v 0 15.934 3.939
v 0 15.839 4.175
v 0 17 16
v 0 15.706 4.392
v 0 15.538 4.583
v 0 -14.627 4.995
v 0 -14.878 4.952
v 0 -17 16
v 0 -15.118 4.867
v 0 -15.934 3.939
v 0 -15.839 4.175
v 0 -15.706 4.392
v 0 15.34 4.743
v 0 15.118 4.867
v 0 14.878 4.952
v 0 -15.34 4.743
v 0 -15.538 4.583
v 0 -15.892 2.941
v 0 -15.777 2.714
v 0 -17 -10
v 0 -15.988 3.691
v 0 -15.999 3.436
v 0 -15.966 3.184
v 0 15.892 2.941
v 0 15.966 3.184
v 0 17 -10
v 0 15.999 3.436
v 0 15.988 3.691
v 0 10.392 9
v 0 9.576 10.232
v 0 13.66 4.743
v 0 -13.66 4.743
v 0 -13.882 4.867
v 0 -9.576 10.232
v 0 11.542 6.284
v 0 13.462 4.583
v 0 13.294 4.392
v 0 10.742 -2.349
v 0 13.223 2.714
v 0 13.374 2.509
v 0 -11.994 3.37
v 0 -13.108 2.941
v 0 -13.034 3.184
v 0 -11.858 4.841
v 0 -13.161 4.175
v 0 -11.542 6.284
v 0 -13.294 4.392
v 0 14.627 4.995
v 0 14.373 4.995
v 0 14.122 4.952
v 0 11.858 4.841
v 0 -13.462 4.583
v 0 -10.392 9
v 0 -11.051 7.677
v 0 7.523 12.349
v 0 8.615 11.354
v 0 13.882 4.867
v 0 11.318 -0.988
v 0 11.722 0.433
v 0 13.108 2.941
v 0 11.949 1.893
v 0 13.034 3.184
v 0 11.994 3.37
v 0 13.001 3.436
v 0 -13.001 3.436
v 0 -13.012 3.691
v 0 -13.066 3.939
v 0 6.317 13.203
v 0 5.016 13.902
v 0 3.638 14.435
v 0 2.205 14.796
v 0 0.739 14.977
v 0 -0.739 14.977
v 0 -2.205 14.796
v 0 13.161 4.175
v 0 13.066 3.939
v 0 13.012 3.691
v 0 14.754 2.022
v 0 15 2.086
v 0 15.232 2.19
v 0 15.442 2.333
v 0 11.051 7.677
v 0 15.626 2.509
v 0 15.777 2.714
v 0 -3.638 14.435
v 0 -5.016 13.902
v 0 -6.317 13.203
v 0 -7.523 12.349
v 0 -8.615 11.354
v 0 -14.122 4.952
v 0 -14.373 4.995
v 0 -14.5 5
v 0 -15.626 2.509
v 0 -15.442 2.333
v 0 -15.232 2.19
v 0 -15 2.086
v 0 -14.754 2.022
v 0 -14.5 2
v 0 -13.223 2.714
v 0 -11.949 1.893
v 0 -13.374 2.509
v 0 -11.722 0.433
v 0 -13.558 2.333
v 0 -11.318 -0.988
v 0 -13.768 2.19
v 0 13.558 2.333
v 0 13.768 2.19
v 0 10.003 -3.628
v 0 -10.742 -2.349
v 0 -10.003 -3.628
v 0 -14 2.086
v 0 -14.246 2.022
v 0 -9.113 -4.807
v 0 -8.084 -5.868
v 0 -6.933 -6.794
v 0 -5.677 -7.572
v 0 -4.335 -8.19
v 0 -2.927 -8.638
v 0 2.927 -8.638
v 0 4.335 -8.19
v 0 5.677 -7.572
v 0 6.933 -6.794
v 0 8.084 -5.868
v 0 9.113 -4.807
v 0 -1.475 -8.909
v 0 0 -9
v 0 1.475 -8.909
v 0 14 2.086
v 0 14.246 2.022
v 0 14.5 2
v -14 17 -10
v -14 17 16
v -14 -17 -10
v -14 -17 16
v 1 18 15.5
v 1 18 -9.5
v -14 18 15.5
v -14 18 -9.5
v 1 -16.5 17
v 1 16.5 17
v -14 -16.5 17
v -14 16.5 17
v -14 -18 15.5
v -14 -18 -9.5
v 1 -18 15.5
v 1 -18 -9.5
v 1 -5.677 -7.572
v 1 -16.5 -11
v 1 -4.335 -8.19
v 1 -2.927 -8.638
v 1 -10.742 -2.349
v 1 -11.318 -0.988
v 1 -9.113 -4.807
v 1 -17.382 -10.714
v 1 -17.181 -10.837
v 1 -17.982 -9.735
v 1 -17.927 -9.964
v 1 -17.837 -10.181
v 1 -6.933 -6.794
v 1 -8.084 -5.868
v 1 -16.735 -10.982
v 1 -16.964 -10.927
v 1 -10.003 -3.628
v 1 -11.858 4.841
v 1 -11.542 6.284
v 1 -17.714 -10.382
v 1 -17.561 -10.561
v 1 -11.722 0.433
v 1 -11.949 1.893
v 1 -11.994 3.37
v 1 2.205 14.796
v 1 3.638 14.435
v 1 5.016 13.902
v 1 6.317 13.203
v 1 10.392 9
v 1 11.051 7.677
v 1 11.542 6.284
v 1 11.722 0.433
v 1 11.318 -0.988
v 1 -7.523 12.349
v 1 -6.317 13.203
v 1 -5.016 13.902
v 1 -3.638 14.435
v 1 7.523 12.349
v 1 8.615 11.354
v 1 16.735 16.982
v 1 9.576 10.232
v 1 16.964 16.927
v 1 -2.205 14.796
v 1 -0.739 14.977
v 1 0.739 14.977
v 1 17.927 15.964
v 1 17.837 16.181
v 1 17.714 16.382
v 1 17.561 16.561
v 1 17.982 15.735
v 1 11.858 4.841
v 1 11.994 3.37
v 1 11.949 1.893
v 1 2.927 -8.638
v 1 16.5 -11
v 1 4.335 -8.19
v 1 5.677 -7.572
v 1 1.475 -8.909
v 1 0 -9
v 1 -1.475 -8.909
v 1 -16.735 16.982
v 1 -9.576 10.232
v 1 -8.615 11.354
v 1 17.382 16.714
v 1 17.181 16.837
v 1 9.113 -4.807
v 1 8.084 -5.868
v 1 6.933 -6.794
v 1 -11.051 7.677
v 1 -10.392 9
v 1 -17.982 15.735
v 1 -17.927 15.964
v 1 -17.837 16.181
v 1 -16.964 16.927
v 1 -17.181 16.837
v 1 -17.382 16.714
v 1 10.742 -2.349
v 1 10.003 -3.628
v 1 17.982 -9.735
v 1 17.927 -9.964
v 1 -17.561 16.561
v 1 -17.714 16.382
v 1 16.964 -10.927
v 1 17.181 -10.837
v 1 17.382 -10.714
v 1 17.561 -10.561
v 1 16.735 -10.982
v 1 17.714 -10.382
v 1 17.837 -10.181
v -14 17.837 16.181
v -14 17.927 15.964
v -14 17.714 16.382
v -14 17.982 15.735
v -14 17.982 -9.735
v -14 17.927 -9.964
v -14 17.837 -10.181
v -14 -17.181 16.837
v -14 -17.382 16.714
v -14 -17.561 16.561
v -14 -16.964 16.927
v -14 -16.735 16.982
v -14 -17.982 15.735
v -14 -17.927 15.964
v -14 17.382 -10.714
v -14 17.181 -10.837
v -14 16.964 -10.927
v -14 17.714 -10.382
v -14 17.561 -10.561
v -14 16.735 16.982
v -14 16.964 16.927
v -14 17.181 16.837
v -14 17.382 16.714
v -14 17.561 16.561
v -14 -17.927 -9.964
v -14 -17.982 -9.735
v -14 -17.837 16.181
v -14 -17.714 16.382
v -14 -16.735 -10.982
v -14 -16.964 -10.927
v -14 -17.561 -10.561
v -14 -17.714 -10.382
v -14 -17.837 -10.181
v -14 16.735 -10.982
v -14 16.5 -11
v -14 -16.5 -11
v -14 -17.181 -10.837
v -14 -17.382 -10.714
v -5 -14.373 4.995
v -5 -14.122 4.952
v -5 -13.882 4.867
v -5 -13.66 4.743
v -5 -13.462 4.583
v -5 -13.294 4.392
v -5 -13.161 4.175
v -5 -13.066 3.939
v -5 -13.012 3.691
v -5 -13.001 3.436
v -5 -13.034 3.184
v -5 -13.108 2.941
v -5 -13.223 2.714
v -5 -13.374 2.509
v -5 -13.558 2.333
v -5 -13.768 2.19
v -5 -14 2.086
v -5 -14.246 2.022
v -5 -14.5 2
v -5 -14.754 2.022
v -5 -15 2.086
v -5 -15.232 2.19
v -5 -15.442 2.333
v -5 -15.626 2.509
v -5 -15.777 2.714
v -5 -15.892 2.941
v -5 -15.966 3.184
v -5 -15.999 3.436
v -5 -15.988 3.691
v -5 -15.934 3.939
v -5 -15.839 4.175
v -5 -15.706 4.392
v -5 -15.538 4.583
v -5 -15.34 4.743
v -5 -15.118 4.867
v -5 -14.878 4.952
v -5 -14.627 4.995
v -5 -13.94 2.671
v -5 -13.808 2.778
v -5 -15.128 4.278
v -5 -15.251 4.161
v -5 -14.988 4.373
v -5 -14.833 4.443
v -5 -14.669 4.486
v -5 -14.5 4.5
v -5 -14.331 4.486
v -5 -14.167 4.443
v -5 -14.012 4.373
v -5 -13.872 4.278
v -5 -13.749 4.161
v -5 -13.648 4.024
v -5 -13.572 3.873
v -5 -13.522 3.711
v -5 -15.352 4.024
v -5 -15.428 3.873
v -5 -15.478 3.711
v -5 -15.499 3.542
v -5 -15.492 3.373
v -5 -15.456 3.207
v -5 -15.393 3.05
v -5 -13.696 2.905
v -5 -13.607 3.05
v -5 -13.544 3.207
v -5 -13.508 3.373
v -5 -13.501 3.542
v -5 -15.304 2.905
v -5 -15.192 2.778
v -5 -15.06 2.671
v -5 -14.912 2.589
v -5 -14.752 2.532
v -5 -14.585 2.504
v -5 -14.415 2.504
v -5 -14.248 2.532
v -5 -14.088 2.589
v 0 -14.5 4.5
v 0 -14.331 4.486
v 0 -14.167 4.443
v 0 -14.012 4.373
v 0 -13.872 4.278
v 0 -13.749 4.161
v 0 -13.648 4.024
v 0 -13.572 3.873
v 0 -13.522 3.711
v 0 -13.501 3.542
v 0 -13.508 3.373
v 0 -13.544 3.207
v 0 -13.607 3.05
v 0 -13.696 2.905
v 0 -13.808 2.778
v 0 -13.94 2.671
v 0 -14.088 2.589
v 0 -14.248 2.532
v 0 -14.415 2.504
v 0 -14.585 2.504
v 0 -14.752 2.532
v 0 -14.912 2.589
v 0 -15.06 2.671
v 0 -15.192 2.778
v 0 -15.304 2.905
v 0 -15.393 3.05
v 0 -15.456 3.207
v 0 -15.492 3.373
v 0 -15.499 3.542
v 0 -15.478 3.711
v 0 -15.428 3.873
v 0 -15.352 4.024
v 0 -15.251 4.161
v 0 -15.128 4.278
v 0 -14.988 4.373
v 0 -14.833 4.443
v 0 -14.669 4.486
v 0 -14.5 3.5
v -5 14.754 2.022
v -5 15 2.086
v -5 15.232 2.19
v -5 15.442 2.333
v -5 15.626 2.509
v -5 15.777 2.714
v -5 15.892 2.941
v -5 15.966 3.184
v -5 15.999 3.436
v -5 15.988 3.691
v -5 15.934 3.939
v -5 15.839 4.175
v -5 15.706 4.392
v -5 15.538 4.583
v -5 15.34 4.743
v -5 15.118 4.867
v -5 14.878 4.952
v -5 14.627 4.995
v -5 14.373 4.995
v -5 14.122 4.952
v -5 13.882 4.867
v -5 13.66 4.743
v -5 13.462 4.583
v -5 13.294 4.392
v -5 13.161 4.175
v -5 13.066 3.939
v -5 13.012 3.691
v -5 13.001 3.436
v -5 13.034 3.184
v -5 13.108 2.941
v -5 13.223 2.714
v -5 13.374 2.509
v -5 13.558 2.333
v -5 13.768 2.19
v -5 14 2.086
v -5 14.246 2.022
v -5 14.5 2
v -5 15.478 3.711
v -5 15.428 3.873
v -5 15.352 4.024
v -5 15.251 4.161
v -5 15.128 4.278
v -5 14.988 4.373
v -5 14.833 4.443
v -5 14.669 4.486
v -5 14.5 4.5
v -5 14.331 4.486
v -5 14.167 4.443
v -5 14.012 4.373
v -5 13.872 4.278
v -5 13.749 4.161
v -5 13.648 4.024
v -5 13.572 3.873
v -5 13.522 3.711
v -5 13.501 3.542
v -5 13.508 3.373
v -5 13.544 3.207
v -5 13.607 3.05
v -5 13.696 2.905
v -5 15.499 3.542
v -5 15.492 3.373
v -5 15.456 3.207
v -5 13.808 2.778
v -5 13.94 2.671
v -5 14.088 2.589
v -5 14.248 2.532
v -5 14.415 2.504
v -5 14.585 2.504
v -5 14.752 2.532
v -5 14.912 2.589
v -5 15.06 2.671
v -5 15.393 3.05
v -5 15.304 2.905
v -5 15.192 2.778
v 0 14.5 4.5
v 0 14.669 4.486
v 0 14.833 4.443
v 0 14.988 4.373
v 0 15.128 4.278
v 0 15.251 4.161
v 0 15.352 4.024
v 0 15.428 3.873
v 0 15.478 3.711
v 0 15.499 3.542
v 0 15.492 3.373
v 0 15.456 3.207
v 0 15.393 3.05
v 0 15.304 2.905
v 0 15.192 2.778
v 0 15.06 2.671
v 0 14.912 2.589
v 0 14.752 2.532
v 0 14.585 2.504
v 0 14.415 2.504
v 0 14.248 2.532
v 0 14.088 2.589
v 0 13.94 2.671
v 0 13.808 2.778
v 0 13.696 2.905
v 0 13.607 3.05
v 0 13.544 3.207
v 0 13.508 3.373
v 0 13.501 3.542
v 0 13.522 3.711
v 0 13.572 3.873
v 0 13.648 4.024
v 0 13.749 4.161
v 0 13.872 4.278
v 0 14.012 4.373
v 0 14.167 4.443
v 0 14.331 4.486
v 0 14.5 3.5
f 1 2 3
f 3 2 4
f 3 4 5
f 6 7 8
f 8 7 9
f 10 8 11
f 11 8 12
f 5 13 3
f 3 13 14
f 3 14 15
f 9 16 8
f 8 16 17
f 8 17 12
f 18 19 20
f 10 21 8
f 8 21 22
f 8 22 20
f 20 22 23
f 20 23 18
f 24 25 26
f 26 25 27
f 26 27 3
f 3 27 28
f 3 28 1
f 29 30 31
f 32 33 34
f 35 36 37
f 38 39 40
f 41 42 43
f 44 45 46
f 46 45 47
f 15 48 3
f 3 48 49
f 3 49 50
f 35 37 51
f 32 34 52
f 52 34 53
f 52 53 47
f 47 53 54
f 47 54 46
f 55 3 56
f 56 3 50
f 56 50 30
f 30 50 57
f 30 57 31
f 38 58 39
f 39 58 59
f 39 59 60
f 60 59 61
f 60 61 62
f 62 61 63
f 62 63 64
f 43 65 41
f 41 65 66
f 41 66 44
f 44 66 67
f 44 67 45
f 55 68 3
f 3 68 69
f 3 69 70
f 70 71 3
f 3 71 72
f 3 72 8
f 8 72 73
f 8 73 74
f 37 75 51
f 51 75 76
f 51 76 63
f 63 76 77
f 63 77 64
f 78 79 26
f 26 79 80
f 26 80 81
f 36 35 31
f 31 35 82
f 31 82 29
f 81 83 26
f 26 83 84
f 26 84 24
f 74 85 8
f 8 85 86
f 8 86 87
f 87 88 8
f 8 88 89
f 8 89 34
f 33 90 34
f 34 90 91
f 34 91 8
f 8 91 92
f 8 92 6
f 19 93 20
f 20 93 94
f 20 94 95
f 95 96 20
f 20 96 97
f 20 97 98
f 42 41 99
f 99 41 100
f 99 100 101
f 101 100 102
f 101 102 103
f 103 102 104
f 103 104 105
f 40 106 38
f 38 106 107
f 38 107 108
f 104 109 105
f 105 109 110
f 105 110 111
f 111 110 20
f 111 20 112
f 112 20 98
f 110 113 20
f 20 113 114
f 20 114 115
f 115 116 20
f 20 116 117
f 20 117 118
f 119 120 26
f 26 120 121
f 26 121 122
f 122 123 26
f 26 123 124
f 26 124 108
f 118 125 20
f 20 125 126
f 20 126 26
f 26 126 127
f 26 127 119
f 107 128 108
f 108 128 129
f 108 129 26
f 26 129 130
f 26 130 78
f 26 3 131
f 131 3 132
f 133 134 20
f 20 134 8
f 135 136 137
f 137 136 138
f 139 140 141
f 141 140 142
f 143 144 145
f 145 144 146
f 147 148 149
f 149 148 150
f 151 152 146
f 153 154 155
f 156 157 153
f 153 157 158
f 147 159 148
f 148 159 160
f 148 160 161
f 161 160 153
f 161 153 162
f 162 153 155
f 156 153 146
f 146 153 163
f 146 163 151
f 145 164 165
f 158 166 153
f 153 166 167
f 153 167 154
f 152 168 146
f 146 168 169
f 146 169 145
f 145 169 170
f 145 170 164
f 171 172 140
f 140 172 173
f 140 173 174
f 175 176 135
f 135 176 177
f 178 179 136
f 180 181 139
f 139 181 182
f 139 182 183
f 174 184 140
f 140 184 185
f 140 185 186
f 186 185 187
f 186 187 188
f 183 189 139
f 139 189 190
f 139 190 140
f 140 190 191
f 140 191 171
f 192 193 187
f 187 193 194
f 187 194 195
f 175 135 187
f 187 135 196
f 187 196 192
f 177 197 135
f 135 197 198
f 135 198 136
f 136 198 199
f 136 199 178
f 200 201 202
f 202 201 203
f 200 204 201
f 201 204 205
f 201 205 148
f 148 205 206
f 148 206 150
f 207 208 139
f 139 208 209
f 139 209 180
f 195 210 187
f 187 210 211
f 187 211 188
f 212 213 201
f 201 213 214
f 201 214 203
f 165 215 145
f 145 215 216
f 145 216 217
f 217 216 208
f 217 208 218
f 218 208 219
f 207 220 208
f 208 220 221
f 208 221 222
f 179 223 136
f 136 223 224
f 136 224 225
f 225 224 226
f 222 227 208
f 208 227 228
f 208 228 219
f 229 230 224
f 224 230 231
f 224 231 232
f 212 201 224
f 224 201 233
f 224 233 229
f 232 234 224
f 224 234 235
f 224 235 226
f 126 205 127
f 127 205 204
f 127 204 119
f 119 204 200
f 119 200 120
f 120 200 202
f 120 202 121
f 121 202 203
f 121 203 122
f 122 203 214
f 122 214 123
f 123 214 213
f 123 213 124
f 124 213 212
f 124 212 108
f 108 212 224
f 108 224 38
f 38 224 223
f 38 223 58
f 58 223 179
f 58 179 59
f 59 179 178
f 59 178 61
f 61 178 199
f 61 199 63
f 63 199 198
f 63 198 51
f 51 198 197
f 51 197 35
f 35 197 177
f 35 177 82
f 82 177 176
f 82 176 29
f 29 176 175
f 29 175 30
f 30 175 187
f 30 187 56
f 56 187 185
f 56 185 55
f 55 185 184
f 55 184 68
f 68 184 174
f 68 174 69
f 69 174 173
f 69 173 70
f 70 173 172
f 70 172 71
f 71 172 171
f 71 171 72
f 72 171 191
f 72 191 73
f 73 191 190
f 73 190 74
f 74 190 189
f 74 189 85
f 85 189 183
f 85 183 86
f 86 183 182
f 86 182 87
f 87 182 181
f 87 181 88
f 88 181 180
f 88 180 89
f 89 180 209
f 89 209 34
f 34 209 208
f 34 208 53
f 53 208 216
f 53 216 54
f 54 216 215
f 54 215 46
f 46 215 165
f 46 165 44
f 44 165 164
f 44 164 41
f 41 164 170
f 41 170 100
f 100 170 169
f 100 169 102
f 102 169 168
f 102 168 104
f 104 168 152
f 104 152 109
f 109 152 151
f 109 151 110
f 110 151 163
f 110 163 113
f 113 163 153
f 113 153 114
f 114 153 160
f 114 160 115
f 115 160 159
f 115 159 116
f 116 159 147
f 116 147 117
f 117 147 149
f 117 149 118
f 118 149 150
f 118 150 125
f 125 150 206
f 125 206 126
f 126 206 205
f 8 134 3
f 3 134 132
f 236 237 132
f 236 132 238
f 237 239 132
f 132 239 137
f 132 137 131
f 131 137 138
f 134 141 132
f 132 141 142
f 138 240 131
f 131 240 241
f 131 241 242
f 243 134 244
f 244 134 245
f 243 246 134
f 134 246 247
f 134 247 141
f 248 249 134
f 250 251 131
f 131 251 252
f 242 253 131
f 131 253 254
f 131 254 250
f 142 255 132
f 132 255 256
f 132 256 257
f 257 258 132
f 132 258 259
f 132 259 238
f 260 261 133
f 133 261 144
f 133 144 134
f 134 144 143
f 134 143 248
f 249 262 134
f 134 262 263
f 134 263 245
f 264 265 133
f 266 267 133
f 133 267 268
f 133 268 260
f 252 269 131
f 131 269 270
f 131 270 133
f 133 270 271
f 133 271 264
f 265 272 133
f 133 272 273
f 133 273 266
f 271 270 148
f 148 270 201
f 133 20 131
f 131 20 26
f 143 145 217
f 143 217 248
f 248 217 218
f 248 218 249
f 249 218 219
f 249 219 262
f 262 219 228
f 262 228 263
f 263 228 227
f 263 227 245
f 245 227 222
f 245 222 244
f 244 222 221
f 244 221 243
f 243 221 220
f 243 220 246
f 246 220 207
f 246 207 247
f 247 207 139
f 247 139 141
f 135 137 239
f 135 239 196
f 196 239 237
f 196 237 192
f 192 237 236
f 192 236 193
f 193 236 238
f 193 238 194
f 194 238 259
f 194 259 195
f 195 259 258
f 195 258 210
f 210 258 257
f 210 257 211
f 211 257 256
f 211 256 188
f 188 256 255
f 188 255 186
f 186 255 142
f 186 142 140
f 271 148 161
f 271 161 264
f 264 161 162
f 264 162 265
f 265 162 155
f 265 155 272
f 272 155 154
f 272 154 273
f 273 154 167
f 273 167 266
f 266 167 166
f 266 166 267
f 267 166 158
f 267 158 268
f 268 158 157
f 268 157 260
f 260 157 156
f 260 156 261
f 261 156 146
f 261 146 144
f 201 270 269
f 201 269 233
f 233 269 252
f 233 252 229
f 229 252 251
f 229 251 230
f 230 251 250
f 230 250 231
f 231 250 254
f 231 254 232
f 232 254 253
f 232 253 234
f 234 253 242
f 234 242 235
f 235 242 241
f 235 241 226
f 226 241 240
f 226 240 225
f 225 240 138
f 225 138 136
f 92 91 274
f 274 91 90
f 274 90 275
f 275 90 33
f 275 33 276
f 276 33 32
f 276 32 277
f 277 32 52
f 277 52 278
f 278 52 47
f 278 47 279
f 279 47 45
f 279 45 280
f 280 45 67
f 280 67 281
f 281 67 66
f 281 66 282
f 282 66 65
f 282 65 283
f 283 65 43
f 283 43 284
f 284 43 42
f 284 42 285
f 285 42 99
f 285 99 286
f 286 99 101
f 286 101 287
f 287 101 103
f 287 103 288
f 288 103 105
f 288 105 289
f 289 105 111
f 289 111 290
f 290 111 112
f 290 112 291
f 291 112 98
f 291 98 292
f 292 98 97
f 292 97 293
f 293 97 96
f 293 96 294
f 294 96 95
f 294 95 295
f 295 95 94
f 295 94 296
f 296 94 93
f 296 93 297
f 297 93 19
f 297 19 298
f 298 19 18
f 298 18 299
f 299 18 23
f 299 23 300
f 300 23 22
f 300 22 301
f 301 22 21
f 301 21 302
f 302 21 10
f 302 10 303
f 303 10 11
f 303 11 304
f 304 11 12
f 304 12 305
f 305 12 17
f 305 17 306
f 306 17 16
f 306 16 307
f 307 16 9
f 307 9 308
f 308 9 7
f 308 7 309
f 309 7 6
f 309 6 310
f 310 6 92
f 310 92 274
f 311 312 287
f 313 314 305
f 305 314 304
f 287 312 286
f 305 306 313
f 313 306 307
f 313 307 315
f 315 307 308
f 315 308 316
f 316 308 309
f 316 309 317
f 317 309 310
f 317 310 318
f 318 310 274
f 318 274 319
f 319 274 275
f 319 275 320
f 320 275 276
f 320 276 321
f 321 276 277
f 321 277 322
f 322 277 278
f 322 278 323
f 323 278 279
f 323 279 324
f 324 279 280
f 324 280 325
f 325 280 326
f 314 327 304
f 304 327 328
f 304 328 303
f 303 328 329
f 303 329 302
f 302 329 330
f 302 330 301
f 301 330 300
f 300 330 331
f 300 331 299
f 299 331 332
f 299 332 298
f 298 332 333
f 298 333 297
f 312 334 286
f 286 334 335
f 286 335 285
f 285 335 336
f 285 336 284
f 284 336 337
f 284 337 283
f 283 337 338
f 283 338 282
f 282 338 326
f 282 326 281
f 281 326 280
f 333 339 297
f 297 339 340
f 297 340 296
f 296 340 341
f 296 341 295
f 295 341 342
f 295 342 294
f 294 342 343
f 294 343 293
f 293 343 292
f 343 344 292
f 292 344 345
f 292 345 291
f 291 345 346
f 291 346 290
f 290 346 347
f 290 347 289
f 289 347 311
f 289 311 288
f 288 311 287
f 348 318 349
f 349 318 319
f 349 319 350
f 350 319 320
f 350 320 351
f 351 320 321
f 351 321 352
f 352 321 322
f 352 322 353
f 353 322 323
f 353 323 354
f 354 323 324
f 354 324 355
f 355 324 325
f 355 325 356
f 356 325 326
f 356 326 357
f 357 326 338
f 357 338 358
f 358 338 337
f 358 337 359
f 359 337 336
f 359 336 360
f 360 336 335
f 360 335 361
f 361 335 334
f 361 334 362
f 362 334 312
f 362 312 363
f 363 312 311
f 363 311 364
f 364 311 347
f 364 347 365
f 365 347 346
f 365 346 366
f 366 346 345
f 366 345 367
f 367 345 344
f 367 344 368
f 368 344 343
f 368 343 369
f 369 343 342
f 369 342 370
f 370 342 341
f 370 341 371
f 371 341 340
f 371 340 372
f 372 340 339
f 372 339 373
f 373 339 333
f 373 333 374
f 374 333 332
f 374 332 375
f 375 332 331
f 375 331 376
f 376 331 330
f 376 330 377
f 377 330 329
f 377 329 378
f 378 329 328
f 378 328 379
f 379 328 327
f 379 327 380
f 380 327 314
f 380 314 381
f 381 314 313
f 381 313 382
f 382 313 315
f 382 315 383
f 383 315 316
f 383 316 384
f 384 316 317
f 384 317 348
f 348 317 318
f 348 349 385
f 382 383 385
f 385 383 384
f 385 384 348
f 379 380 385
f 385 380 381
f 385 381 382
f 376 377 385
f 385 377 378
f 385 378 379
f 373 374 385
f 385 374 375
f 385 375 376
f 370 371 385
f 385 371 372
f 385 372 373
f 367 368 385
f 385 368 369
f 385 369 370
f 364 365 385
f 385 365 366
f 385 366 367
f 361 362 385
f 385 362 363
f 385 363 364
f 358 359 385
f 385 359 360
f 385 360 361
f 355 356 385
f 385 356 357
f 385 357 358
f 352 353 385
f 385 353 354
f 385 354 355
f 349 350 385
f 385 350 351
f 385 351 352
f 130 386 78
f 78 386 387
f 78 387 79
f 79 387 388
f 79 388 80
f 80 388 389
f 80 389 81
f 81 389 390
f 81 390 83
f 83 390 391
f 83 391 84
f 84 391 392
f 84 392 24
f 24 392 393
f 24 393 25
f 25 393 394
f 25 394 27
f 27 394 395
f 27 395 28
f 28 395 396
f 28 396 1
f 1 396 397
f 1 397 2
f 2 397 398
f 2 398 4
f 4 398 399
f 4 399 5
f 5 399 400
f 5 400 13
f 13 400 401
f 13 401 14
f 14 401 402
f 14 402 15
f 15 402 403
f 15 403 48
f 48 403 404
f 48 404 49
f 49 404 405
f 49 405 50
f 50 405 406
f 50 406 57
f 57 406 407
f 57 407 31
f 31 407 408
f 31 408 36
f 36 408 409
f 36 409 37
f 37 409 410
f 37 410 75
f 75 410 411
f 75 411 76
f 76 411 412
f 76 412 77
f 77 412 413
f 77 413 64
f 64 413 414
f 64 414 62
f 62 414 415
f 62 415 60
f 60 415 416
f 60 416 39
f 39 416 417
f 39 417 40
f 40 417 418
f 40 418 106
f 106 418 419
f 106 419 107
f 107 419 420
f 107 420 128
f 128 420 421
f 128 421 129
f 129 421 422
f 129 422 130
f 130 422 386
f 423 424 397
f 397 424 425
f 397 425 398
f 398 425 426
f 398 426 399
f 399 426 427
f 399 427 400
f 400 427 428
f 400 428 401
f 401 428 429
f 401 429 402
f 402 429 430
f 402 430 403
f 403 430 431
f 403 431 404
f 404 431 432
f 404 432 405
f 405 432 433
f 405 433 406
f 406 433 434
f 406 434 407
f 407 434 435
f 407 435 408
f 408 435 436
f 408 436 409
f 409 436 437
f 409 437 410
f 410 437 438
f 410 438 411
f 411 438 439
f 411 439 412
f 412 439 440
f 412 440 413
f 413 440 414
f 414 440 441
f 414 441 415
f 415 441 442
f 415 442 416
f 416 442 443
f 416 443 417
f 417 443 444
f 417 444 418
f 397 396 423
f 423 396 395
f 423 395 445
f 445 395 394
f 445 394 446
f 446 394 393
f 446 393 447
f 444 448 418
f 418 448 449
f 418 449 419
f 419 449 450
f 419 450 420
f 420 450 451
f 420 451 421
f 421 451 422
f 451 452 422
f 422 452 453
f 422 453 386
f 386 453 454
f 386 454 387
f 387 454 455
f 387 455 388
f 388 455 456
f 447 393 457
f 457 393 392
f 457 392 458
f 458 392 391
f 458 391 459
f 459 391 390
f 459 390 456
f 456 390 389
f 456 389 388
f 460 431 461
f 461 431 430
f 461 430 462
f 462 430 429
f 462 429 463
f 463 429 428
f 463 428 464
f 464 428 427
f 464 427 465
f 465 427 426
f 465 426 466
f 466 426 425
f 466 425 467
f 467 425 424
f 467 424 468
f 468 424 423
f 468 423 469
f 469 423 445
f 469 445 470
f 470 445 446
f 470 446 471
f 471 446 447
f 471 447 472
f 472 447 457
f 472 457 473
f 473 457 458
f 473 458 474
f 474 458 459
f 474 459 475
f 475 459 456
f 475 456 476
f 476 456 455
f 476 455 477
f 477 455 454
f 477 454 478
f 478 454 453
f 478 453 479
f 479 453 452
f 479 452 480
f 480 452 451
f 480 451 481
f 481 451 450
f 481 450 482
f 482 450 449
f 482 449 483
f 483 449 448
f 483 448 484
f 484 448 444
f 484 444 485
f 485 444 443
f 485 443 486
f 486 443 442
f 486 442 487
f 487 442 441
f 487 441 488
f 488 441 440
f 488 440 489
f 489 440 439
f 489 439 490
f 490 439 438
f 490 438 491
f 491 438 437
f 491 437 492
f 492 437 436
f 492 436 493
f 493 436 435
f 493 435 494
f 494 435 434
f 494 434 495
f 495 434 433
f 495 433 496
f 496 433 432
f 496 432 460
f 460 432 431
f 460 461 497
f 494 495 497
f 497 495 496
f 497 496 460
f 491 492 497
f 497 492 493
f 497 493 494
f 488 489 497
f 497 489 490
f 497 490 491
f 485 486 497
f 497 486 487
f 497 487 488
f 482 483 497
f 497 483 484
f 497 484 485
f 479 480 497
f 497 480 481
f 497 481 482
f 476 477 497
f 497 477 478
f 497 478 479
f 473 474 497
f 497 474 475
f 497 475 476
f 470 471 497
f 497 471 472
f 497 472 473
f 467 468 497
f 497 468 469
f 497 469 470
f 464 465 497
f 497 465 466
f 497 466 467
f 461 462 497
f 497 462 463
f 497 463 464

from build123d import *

# Parameters (mm, degrees)
SKETCH1_W           = 36
SKETCH1_H           = 34
BOSS_EXTRUDE6_DEPTH = 1
SKETCH7_R           = 12
CUT_EXTRUDE1_DEPTH  = 1
EXTRUDE_THIN1_DEPTH = 15
SKETCH10_W          = 6.466905847
SKETCH10_H          = 48.062044255
CUT_EXTRUDE2_DEPTH  = 29.948229652
SKETCH11_W          = 36
SKETCH11_H          = 1
EXTRUDE_THIN2_DEPTH = 14
FILLET3_R           = 1.5
SKETCH12_R          = 1.5
BOSS_EXTRUDE7_DEPTH = 5
SKETCH13_R          = 1
CUT_EXTRUDE3_DEPTH  = 5


with BuildPart() as part:
    # Sketch1 → Boss-Extrude6 (new body)
    with BuildSketch(Plane.YZ):
        Rectangle(SKETCH1_W, SKETCH1_H)
    extrude(amount=BOSS_EXTRUDE6_DEPTH)

    # Sketch7 → Cut-Extrude1 (cut)
    with BuildSketch(Plane.YZ.offset(1)):
        with Locations(Location((0, 3, 0), (0, 0, 270))):
            Circle(SKETCH7_R)
    extrude(amount=-CUT_EXTRUDE1_DEPTH, mode=Mode.SUBTRACT)

    # Sketch9 → Extrude-Thin1 (add)
    with BuildSketch(Plane(origin=(1, 0, 0), x_dir=(0, 0, -1), z_dir=(1, 0, 0))):
        Polygon((17, -18), (-17, -18), (-17, 18), (17, 18), (17, 17), (-16, 17), (-16, -17), (17, -17), align=None)
    extrude(amount=-EXTRUDE_THIN1_DEPTH)

    # Sketch10 → Cut-Extrude2 (cut, through all)
    with BuildSketch(Plane(origin=(1, 0, 0), x_dir=(0, 0, -1), z_dir=(1, 0, 0))):
        with Locations((14.233452923, -0.025867623)):
            Rectangle(SKETCH10_W, SKETCH10_H)
    extrude(amount=-CUT_EXTRUDE2_DEPTH, mode=Mode.SUBTRACT)

    # Sketch11 → Extrude-Thin2 (add)
    with BuildSketch(Plane.YZ):
        with Locations((0, -10.5)):
            Rectangle(SKETCH11_W, SKETCH11_H)
    extrude(amount=-EXTRUDE_THIN2_DEPTH)

    # Fillet3
    fillet3_edges = [part.edges().sort_by_distance(p)[0] for p in [
        (-6.5, 18, -11),
        (-6.5, -18, -11),
        (-6.5, -18, 17),
        (-6.5, 18, 17),
    ]]
    fillet(fillet3_edges, radius=FILLET3_R)

    # Sketch12 → Boss-Extrude7 (add)
    with BuildSketch(Plane.YZ):
        with Locations(Location((-14.5, 3.5, 0), (0, 0, 270))):
            Circle(SKETCH12_R)
    boss_extrude7 = extrude(amount=-BOSS_EXTRUDE7_DEPTH)

    # Sketch13 → Cut-Extrude3 (cut)
    with BuildSketch(Plane(origin=(-5, 0, 0), x_dir=(0, -1, 0), z_dir=(-1, 0, 0))):
        with Locations(Location((14.5, 3.5, 0), (0, 0, 90))):
            Circle(SKETCH13_R)
    cut_extrude3 = extrude(amount=-CUT_EXTRUDE3_DEPTH, mode=Mode.SUBTRACT)

    # Mirror1: Boss-Extrude7, Cut-Extrude3 across plane
    add(boss_extrude7.mirror(Plane.ZX))
    add(cut_extrude3.mirror(Plane.ZX), mode=Mode.SUBTRACT)


solid = part.part
